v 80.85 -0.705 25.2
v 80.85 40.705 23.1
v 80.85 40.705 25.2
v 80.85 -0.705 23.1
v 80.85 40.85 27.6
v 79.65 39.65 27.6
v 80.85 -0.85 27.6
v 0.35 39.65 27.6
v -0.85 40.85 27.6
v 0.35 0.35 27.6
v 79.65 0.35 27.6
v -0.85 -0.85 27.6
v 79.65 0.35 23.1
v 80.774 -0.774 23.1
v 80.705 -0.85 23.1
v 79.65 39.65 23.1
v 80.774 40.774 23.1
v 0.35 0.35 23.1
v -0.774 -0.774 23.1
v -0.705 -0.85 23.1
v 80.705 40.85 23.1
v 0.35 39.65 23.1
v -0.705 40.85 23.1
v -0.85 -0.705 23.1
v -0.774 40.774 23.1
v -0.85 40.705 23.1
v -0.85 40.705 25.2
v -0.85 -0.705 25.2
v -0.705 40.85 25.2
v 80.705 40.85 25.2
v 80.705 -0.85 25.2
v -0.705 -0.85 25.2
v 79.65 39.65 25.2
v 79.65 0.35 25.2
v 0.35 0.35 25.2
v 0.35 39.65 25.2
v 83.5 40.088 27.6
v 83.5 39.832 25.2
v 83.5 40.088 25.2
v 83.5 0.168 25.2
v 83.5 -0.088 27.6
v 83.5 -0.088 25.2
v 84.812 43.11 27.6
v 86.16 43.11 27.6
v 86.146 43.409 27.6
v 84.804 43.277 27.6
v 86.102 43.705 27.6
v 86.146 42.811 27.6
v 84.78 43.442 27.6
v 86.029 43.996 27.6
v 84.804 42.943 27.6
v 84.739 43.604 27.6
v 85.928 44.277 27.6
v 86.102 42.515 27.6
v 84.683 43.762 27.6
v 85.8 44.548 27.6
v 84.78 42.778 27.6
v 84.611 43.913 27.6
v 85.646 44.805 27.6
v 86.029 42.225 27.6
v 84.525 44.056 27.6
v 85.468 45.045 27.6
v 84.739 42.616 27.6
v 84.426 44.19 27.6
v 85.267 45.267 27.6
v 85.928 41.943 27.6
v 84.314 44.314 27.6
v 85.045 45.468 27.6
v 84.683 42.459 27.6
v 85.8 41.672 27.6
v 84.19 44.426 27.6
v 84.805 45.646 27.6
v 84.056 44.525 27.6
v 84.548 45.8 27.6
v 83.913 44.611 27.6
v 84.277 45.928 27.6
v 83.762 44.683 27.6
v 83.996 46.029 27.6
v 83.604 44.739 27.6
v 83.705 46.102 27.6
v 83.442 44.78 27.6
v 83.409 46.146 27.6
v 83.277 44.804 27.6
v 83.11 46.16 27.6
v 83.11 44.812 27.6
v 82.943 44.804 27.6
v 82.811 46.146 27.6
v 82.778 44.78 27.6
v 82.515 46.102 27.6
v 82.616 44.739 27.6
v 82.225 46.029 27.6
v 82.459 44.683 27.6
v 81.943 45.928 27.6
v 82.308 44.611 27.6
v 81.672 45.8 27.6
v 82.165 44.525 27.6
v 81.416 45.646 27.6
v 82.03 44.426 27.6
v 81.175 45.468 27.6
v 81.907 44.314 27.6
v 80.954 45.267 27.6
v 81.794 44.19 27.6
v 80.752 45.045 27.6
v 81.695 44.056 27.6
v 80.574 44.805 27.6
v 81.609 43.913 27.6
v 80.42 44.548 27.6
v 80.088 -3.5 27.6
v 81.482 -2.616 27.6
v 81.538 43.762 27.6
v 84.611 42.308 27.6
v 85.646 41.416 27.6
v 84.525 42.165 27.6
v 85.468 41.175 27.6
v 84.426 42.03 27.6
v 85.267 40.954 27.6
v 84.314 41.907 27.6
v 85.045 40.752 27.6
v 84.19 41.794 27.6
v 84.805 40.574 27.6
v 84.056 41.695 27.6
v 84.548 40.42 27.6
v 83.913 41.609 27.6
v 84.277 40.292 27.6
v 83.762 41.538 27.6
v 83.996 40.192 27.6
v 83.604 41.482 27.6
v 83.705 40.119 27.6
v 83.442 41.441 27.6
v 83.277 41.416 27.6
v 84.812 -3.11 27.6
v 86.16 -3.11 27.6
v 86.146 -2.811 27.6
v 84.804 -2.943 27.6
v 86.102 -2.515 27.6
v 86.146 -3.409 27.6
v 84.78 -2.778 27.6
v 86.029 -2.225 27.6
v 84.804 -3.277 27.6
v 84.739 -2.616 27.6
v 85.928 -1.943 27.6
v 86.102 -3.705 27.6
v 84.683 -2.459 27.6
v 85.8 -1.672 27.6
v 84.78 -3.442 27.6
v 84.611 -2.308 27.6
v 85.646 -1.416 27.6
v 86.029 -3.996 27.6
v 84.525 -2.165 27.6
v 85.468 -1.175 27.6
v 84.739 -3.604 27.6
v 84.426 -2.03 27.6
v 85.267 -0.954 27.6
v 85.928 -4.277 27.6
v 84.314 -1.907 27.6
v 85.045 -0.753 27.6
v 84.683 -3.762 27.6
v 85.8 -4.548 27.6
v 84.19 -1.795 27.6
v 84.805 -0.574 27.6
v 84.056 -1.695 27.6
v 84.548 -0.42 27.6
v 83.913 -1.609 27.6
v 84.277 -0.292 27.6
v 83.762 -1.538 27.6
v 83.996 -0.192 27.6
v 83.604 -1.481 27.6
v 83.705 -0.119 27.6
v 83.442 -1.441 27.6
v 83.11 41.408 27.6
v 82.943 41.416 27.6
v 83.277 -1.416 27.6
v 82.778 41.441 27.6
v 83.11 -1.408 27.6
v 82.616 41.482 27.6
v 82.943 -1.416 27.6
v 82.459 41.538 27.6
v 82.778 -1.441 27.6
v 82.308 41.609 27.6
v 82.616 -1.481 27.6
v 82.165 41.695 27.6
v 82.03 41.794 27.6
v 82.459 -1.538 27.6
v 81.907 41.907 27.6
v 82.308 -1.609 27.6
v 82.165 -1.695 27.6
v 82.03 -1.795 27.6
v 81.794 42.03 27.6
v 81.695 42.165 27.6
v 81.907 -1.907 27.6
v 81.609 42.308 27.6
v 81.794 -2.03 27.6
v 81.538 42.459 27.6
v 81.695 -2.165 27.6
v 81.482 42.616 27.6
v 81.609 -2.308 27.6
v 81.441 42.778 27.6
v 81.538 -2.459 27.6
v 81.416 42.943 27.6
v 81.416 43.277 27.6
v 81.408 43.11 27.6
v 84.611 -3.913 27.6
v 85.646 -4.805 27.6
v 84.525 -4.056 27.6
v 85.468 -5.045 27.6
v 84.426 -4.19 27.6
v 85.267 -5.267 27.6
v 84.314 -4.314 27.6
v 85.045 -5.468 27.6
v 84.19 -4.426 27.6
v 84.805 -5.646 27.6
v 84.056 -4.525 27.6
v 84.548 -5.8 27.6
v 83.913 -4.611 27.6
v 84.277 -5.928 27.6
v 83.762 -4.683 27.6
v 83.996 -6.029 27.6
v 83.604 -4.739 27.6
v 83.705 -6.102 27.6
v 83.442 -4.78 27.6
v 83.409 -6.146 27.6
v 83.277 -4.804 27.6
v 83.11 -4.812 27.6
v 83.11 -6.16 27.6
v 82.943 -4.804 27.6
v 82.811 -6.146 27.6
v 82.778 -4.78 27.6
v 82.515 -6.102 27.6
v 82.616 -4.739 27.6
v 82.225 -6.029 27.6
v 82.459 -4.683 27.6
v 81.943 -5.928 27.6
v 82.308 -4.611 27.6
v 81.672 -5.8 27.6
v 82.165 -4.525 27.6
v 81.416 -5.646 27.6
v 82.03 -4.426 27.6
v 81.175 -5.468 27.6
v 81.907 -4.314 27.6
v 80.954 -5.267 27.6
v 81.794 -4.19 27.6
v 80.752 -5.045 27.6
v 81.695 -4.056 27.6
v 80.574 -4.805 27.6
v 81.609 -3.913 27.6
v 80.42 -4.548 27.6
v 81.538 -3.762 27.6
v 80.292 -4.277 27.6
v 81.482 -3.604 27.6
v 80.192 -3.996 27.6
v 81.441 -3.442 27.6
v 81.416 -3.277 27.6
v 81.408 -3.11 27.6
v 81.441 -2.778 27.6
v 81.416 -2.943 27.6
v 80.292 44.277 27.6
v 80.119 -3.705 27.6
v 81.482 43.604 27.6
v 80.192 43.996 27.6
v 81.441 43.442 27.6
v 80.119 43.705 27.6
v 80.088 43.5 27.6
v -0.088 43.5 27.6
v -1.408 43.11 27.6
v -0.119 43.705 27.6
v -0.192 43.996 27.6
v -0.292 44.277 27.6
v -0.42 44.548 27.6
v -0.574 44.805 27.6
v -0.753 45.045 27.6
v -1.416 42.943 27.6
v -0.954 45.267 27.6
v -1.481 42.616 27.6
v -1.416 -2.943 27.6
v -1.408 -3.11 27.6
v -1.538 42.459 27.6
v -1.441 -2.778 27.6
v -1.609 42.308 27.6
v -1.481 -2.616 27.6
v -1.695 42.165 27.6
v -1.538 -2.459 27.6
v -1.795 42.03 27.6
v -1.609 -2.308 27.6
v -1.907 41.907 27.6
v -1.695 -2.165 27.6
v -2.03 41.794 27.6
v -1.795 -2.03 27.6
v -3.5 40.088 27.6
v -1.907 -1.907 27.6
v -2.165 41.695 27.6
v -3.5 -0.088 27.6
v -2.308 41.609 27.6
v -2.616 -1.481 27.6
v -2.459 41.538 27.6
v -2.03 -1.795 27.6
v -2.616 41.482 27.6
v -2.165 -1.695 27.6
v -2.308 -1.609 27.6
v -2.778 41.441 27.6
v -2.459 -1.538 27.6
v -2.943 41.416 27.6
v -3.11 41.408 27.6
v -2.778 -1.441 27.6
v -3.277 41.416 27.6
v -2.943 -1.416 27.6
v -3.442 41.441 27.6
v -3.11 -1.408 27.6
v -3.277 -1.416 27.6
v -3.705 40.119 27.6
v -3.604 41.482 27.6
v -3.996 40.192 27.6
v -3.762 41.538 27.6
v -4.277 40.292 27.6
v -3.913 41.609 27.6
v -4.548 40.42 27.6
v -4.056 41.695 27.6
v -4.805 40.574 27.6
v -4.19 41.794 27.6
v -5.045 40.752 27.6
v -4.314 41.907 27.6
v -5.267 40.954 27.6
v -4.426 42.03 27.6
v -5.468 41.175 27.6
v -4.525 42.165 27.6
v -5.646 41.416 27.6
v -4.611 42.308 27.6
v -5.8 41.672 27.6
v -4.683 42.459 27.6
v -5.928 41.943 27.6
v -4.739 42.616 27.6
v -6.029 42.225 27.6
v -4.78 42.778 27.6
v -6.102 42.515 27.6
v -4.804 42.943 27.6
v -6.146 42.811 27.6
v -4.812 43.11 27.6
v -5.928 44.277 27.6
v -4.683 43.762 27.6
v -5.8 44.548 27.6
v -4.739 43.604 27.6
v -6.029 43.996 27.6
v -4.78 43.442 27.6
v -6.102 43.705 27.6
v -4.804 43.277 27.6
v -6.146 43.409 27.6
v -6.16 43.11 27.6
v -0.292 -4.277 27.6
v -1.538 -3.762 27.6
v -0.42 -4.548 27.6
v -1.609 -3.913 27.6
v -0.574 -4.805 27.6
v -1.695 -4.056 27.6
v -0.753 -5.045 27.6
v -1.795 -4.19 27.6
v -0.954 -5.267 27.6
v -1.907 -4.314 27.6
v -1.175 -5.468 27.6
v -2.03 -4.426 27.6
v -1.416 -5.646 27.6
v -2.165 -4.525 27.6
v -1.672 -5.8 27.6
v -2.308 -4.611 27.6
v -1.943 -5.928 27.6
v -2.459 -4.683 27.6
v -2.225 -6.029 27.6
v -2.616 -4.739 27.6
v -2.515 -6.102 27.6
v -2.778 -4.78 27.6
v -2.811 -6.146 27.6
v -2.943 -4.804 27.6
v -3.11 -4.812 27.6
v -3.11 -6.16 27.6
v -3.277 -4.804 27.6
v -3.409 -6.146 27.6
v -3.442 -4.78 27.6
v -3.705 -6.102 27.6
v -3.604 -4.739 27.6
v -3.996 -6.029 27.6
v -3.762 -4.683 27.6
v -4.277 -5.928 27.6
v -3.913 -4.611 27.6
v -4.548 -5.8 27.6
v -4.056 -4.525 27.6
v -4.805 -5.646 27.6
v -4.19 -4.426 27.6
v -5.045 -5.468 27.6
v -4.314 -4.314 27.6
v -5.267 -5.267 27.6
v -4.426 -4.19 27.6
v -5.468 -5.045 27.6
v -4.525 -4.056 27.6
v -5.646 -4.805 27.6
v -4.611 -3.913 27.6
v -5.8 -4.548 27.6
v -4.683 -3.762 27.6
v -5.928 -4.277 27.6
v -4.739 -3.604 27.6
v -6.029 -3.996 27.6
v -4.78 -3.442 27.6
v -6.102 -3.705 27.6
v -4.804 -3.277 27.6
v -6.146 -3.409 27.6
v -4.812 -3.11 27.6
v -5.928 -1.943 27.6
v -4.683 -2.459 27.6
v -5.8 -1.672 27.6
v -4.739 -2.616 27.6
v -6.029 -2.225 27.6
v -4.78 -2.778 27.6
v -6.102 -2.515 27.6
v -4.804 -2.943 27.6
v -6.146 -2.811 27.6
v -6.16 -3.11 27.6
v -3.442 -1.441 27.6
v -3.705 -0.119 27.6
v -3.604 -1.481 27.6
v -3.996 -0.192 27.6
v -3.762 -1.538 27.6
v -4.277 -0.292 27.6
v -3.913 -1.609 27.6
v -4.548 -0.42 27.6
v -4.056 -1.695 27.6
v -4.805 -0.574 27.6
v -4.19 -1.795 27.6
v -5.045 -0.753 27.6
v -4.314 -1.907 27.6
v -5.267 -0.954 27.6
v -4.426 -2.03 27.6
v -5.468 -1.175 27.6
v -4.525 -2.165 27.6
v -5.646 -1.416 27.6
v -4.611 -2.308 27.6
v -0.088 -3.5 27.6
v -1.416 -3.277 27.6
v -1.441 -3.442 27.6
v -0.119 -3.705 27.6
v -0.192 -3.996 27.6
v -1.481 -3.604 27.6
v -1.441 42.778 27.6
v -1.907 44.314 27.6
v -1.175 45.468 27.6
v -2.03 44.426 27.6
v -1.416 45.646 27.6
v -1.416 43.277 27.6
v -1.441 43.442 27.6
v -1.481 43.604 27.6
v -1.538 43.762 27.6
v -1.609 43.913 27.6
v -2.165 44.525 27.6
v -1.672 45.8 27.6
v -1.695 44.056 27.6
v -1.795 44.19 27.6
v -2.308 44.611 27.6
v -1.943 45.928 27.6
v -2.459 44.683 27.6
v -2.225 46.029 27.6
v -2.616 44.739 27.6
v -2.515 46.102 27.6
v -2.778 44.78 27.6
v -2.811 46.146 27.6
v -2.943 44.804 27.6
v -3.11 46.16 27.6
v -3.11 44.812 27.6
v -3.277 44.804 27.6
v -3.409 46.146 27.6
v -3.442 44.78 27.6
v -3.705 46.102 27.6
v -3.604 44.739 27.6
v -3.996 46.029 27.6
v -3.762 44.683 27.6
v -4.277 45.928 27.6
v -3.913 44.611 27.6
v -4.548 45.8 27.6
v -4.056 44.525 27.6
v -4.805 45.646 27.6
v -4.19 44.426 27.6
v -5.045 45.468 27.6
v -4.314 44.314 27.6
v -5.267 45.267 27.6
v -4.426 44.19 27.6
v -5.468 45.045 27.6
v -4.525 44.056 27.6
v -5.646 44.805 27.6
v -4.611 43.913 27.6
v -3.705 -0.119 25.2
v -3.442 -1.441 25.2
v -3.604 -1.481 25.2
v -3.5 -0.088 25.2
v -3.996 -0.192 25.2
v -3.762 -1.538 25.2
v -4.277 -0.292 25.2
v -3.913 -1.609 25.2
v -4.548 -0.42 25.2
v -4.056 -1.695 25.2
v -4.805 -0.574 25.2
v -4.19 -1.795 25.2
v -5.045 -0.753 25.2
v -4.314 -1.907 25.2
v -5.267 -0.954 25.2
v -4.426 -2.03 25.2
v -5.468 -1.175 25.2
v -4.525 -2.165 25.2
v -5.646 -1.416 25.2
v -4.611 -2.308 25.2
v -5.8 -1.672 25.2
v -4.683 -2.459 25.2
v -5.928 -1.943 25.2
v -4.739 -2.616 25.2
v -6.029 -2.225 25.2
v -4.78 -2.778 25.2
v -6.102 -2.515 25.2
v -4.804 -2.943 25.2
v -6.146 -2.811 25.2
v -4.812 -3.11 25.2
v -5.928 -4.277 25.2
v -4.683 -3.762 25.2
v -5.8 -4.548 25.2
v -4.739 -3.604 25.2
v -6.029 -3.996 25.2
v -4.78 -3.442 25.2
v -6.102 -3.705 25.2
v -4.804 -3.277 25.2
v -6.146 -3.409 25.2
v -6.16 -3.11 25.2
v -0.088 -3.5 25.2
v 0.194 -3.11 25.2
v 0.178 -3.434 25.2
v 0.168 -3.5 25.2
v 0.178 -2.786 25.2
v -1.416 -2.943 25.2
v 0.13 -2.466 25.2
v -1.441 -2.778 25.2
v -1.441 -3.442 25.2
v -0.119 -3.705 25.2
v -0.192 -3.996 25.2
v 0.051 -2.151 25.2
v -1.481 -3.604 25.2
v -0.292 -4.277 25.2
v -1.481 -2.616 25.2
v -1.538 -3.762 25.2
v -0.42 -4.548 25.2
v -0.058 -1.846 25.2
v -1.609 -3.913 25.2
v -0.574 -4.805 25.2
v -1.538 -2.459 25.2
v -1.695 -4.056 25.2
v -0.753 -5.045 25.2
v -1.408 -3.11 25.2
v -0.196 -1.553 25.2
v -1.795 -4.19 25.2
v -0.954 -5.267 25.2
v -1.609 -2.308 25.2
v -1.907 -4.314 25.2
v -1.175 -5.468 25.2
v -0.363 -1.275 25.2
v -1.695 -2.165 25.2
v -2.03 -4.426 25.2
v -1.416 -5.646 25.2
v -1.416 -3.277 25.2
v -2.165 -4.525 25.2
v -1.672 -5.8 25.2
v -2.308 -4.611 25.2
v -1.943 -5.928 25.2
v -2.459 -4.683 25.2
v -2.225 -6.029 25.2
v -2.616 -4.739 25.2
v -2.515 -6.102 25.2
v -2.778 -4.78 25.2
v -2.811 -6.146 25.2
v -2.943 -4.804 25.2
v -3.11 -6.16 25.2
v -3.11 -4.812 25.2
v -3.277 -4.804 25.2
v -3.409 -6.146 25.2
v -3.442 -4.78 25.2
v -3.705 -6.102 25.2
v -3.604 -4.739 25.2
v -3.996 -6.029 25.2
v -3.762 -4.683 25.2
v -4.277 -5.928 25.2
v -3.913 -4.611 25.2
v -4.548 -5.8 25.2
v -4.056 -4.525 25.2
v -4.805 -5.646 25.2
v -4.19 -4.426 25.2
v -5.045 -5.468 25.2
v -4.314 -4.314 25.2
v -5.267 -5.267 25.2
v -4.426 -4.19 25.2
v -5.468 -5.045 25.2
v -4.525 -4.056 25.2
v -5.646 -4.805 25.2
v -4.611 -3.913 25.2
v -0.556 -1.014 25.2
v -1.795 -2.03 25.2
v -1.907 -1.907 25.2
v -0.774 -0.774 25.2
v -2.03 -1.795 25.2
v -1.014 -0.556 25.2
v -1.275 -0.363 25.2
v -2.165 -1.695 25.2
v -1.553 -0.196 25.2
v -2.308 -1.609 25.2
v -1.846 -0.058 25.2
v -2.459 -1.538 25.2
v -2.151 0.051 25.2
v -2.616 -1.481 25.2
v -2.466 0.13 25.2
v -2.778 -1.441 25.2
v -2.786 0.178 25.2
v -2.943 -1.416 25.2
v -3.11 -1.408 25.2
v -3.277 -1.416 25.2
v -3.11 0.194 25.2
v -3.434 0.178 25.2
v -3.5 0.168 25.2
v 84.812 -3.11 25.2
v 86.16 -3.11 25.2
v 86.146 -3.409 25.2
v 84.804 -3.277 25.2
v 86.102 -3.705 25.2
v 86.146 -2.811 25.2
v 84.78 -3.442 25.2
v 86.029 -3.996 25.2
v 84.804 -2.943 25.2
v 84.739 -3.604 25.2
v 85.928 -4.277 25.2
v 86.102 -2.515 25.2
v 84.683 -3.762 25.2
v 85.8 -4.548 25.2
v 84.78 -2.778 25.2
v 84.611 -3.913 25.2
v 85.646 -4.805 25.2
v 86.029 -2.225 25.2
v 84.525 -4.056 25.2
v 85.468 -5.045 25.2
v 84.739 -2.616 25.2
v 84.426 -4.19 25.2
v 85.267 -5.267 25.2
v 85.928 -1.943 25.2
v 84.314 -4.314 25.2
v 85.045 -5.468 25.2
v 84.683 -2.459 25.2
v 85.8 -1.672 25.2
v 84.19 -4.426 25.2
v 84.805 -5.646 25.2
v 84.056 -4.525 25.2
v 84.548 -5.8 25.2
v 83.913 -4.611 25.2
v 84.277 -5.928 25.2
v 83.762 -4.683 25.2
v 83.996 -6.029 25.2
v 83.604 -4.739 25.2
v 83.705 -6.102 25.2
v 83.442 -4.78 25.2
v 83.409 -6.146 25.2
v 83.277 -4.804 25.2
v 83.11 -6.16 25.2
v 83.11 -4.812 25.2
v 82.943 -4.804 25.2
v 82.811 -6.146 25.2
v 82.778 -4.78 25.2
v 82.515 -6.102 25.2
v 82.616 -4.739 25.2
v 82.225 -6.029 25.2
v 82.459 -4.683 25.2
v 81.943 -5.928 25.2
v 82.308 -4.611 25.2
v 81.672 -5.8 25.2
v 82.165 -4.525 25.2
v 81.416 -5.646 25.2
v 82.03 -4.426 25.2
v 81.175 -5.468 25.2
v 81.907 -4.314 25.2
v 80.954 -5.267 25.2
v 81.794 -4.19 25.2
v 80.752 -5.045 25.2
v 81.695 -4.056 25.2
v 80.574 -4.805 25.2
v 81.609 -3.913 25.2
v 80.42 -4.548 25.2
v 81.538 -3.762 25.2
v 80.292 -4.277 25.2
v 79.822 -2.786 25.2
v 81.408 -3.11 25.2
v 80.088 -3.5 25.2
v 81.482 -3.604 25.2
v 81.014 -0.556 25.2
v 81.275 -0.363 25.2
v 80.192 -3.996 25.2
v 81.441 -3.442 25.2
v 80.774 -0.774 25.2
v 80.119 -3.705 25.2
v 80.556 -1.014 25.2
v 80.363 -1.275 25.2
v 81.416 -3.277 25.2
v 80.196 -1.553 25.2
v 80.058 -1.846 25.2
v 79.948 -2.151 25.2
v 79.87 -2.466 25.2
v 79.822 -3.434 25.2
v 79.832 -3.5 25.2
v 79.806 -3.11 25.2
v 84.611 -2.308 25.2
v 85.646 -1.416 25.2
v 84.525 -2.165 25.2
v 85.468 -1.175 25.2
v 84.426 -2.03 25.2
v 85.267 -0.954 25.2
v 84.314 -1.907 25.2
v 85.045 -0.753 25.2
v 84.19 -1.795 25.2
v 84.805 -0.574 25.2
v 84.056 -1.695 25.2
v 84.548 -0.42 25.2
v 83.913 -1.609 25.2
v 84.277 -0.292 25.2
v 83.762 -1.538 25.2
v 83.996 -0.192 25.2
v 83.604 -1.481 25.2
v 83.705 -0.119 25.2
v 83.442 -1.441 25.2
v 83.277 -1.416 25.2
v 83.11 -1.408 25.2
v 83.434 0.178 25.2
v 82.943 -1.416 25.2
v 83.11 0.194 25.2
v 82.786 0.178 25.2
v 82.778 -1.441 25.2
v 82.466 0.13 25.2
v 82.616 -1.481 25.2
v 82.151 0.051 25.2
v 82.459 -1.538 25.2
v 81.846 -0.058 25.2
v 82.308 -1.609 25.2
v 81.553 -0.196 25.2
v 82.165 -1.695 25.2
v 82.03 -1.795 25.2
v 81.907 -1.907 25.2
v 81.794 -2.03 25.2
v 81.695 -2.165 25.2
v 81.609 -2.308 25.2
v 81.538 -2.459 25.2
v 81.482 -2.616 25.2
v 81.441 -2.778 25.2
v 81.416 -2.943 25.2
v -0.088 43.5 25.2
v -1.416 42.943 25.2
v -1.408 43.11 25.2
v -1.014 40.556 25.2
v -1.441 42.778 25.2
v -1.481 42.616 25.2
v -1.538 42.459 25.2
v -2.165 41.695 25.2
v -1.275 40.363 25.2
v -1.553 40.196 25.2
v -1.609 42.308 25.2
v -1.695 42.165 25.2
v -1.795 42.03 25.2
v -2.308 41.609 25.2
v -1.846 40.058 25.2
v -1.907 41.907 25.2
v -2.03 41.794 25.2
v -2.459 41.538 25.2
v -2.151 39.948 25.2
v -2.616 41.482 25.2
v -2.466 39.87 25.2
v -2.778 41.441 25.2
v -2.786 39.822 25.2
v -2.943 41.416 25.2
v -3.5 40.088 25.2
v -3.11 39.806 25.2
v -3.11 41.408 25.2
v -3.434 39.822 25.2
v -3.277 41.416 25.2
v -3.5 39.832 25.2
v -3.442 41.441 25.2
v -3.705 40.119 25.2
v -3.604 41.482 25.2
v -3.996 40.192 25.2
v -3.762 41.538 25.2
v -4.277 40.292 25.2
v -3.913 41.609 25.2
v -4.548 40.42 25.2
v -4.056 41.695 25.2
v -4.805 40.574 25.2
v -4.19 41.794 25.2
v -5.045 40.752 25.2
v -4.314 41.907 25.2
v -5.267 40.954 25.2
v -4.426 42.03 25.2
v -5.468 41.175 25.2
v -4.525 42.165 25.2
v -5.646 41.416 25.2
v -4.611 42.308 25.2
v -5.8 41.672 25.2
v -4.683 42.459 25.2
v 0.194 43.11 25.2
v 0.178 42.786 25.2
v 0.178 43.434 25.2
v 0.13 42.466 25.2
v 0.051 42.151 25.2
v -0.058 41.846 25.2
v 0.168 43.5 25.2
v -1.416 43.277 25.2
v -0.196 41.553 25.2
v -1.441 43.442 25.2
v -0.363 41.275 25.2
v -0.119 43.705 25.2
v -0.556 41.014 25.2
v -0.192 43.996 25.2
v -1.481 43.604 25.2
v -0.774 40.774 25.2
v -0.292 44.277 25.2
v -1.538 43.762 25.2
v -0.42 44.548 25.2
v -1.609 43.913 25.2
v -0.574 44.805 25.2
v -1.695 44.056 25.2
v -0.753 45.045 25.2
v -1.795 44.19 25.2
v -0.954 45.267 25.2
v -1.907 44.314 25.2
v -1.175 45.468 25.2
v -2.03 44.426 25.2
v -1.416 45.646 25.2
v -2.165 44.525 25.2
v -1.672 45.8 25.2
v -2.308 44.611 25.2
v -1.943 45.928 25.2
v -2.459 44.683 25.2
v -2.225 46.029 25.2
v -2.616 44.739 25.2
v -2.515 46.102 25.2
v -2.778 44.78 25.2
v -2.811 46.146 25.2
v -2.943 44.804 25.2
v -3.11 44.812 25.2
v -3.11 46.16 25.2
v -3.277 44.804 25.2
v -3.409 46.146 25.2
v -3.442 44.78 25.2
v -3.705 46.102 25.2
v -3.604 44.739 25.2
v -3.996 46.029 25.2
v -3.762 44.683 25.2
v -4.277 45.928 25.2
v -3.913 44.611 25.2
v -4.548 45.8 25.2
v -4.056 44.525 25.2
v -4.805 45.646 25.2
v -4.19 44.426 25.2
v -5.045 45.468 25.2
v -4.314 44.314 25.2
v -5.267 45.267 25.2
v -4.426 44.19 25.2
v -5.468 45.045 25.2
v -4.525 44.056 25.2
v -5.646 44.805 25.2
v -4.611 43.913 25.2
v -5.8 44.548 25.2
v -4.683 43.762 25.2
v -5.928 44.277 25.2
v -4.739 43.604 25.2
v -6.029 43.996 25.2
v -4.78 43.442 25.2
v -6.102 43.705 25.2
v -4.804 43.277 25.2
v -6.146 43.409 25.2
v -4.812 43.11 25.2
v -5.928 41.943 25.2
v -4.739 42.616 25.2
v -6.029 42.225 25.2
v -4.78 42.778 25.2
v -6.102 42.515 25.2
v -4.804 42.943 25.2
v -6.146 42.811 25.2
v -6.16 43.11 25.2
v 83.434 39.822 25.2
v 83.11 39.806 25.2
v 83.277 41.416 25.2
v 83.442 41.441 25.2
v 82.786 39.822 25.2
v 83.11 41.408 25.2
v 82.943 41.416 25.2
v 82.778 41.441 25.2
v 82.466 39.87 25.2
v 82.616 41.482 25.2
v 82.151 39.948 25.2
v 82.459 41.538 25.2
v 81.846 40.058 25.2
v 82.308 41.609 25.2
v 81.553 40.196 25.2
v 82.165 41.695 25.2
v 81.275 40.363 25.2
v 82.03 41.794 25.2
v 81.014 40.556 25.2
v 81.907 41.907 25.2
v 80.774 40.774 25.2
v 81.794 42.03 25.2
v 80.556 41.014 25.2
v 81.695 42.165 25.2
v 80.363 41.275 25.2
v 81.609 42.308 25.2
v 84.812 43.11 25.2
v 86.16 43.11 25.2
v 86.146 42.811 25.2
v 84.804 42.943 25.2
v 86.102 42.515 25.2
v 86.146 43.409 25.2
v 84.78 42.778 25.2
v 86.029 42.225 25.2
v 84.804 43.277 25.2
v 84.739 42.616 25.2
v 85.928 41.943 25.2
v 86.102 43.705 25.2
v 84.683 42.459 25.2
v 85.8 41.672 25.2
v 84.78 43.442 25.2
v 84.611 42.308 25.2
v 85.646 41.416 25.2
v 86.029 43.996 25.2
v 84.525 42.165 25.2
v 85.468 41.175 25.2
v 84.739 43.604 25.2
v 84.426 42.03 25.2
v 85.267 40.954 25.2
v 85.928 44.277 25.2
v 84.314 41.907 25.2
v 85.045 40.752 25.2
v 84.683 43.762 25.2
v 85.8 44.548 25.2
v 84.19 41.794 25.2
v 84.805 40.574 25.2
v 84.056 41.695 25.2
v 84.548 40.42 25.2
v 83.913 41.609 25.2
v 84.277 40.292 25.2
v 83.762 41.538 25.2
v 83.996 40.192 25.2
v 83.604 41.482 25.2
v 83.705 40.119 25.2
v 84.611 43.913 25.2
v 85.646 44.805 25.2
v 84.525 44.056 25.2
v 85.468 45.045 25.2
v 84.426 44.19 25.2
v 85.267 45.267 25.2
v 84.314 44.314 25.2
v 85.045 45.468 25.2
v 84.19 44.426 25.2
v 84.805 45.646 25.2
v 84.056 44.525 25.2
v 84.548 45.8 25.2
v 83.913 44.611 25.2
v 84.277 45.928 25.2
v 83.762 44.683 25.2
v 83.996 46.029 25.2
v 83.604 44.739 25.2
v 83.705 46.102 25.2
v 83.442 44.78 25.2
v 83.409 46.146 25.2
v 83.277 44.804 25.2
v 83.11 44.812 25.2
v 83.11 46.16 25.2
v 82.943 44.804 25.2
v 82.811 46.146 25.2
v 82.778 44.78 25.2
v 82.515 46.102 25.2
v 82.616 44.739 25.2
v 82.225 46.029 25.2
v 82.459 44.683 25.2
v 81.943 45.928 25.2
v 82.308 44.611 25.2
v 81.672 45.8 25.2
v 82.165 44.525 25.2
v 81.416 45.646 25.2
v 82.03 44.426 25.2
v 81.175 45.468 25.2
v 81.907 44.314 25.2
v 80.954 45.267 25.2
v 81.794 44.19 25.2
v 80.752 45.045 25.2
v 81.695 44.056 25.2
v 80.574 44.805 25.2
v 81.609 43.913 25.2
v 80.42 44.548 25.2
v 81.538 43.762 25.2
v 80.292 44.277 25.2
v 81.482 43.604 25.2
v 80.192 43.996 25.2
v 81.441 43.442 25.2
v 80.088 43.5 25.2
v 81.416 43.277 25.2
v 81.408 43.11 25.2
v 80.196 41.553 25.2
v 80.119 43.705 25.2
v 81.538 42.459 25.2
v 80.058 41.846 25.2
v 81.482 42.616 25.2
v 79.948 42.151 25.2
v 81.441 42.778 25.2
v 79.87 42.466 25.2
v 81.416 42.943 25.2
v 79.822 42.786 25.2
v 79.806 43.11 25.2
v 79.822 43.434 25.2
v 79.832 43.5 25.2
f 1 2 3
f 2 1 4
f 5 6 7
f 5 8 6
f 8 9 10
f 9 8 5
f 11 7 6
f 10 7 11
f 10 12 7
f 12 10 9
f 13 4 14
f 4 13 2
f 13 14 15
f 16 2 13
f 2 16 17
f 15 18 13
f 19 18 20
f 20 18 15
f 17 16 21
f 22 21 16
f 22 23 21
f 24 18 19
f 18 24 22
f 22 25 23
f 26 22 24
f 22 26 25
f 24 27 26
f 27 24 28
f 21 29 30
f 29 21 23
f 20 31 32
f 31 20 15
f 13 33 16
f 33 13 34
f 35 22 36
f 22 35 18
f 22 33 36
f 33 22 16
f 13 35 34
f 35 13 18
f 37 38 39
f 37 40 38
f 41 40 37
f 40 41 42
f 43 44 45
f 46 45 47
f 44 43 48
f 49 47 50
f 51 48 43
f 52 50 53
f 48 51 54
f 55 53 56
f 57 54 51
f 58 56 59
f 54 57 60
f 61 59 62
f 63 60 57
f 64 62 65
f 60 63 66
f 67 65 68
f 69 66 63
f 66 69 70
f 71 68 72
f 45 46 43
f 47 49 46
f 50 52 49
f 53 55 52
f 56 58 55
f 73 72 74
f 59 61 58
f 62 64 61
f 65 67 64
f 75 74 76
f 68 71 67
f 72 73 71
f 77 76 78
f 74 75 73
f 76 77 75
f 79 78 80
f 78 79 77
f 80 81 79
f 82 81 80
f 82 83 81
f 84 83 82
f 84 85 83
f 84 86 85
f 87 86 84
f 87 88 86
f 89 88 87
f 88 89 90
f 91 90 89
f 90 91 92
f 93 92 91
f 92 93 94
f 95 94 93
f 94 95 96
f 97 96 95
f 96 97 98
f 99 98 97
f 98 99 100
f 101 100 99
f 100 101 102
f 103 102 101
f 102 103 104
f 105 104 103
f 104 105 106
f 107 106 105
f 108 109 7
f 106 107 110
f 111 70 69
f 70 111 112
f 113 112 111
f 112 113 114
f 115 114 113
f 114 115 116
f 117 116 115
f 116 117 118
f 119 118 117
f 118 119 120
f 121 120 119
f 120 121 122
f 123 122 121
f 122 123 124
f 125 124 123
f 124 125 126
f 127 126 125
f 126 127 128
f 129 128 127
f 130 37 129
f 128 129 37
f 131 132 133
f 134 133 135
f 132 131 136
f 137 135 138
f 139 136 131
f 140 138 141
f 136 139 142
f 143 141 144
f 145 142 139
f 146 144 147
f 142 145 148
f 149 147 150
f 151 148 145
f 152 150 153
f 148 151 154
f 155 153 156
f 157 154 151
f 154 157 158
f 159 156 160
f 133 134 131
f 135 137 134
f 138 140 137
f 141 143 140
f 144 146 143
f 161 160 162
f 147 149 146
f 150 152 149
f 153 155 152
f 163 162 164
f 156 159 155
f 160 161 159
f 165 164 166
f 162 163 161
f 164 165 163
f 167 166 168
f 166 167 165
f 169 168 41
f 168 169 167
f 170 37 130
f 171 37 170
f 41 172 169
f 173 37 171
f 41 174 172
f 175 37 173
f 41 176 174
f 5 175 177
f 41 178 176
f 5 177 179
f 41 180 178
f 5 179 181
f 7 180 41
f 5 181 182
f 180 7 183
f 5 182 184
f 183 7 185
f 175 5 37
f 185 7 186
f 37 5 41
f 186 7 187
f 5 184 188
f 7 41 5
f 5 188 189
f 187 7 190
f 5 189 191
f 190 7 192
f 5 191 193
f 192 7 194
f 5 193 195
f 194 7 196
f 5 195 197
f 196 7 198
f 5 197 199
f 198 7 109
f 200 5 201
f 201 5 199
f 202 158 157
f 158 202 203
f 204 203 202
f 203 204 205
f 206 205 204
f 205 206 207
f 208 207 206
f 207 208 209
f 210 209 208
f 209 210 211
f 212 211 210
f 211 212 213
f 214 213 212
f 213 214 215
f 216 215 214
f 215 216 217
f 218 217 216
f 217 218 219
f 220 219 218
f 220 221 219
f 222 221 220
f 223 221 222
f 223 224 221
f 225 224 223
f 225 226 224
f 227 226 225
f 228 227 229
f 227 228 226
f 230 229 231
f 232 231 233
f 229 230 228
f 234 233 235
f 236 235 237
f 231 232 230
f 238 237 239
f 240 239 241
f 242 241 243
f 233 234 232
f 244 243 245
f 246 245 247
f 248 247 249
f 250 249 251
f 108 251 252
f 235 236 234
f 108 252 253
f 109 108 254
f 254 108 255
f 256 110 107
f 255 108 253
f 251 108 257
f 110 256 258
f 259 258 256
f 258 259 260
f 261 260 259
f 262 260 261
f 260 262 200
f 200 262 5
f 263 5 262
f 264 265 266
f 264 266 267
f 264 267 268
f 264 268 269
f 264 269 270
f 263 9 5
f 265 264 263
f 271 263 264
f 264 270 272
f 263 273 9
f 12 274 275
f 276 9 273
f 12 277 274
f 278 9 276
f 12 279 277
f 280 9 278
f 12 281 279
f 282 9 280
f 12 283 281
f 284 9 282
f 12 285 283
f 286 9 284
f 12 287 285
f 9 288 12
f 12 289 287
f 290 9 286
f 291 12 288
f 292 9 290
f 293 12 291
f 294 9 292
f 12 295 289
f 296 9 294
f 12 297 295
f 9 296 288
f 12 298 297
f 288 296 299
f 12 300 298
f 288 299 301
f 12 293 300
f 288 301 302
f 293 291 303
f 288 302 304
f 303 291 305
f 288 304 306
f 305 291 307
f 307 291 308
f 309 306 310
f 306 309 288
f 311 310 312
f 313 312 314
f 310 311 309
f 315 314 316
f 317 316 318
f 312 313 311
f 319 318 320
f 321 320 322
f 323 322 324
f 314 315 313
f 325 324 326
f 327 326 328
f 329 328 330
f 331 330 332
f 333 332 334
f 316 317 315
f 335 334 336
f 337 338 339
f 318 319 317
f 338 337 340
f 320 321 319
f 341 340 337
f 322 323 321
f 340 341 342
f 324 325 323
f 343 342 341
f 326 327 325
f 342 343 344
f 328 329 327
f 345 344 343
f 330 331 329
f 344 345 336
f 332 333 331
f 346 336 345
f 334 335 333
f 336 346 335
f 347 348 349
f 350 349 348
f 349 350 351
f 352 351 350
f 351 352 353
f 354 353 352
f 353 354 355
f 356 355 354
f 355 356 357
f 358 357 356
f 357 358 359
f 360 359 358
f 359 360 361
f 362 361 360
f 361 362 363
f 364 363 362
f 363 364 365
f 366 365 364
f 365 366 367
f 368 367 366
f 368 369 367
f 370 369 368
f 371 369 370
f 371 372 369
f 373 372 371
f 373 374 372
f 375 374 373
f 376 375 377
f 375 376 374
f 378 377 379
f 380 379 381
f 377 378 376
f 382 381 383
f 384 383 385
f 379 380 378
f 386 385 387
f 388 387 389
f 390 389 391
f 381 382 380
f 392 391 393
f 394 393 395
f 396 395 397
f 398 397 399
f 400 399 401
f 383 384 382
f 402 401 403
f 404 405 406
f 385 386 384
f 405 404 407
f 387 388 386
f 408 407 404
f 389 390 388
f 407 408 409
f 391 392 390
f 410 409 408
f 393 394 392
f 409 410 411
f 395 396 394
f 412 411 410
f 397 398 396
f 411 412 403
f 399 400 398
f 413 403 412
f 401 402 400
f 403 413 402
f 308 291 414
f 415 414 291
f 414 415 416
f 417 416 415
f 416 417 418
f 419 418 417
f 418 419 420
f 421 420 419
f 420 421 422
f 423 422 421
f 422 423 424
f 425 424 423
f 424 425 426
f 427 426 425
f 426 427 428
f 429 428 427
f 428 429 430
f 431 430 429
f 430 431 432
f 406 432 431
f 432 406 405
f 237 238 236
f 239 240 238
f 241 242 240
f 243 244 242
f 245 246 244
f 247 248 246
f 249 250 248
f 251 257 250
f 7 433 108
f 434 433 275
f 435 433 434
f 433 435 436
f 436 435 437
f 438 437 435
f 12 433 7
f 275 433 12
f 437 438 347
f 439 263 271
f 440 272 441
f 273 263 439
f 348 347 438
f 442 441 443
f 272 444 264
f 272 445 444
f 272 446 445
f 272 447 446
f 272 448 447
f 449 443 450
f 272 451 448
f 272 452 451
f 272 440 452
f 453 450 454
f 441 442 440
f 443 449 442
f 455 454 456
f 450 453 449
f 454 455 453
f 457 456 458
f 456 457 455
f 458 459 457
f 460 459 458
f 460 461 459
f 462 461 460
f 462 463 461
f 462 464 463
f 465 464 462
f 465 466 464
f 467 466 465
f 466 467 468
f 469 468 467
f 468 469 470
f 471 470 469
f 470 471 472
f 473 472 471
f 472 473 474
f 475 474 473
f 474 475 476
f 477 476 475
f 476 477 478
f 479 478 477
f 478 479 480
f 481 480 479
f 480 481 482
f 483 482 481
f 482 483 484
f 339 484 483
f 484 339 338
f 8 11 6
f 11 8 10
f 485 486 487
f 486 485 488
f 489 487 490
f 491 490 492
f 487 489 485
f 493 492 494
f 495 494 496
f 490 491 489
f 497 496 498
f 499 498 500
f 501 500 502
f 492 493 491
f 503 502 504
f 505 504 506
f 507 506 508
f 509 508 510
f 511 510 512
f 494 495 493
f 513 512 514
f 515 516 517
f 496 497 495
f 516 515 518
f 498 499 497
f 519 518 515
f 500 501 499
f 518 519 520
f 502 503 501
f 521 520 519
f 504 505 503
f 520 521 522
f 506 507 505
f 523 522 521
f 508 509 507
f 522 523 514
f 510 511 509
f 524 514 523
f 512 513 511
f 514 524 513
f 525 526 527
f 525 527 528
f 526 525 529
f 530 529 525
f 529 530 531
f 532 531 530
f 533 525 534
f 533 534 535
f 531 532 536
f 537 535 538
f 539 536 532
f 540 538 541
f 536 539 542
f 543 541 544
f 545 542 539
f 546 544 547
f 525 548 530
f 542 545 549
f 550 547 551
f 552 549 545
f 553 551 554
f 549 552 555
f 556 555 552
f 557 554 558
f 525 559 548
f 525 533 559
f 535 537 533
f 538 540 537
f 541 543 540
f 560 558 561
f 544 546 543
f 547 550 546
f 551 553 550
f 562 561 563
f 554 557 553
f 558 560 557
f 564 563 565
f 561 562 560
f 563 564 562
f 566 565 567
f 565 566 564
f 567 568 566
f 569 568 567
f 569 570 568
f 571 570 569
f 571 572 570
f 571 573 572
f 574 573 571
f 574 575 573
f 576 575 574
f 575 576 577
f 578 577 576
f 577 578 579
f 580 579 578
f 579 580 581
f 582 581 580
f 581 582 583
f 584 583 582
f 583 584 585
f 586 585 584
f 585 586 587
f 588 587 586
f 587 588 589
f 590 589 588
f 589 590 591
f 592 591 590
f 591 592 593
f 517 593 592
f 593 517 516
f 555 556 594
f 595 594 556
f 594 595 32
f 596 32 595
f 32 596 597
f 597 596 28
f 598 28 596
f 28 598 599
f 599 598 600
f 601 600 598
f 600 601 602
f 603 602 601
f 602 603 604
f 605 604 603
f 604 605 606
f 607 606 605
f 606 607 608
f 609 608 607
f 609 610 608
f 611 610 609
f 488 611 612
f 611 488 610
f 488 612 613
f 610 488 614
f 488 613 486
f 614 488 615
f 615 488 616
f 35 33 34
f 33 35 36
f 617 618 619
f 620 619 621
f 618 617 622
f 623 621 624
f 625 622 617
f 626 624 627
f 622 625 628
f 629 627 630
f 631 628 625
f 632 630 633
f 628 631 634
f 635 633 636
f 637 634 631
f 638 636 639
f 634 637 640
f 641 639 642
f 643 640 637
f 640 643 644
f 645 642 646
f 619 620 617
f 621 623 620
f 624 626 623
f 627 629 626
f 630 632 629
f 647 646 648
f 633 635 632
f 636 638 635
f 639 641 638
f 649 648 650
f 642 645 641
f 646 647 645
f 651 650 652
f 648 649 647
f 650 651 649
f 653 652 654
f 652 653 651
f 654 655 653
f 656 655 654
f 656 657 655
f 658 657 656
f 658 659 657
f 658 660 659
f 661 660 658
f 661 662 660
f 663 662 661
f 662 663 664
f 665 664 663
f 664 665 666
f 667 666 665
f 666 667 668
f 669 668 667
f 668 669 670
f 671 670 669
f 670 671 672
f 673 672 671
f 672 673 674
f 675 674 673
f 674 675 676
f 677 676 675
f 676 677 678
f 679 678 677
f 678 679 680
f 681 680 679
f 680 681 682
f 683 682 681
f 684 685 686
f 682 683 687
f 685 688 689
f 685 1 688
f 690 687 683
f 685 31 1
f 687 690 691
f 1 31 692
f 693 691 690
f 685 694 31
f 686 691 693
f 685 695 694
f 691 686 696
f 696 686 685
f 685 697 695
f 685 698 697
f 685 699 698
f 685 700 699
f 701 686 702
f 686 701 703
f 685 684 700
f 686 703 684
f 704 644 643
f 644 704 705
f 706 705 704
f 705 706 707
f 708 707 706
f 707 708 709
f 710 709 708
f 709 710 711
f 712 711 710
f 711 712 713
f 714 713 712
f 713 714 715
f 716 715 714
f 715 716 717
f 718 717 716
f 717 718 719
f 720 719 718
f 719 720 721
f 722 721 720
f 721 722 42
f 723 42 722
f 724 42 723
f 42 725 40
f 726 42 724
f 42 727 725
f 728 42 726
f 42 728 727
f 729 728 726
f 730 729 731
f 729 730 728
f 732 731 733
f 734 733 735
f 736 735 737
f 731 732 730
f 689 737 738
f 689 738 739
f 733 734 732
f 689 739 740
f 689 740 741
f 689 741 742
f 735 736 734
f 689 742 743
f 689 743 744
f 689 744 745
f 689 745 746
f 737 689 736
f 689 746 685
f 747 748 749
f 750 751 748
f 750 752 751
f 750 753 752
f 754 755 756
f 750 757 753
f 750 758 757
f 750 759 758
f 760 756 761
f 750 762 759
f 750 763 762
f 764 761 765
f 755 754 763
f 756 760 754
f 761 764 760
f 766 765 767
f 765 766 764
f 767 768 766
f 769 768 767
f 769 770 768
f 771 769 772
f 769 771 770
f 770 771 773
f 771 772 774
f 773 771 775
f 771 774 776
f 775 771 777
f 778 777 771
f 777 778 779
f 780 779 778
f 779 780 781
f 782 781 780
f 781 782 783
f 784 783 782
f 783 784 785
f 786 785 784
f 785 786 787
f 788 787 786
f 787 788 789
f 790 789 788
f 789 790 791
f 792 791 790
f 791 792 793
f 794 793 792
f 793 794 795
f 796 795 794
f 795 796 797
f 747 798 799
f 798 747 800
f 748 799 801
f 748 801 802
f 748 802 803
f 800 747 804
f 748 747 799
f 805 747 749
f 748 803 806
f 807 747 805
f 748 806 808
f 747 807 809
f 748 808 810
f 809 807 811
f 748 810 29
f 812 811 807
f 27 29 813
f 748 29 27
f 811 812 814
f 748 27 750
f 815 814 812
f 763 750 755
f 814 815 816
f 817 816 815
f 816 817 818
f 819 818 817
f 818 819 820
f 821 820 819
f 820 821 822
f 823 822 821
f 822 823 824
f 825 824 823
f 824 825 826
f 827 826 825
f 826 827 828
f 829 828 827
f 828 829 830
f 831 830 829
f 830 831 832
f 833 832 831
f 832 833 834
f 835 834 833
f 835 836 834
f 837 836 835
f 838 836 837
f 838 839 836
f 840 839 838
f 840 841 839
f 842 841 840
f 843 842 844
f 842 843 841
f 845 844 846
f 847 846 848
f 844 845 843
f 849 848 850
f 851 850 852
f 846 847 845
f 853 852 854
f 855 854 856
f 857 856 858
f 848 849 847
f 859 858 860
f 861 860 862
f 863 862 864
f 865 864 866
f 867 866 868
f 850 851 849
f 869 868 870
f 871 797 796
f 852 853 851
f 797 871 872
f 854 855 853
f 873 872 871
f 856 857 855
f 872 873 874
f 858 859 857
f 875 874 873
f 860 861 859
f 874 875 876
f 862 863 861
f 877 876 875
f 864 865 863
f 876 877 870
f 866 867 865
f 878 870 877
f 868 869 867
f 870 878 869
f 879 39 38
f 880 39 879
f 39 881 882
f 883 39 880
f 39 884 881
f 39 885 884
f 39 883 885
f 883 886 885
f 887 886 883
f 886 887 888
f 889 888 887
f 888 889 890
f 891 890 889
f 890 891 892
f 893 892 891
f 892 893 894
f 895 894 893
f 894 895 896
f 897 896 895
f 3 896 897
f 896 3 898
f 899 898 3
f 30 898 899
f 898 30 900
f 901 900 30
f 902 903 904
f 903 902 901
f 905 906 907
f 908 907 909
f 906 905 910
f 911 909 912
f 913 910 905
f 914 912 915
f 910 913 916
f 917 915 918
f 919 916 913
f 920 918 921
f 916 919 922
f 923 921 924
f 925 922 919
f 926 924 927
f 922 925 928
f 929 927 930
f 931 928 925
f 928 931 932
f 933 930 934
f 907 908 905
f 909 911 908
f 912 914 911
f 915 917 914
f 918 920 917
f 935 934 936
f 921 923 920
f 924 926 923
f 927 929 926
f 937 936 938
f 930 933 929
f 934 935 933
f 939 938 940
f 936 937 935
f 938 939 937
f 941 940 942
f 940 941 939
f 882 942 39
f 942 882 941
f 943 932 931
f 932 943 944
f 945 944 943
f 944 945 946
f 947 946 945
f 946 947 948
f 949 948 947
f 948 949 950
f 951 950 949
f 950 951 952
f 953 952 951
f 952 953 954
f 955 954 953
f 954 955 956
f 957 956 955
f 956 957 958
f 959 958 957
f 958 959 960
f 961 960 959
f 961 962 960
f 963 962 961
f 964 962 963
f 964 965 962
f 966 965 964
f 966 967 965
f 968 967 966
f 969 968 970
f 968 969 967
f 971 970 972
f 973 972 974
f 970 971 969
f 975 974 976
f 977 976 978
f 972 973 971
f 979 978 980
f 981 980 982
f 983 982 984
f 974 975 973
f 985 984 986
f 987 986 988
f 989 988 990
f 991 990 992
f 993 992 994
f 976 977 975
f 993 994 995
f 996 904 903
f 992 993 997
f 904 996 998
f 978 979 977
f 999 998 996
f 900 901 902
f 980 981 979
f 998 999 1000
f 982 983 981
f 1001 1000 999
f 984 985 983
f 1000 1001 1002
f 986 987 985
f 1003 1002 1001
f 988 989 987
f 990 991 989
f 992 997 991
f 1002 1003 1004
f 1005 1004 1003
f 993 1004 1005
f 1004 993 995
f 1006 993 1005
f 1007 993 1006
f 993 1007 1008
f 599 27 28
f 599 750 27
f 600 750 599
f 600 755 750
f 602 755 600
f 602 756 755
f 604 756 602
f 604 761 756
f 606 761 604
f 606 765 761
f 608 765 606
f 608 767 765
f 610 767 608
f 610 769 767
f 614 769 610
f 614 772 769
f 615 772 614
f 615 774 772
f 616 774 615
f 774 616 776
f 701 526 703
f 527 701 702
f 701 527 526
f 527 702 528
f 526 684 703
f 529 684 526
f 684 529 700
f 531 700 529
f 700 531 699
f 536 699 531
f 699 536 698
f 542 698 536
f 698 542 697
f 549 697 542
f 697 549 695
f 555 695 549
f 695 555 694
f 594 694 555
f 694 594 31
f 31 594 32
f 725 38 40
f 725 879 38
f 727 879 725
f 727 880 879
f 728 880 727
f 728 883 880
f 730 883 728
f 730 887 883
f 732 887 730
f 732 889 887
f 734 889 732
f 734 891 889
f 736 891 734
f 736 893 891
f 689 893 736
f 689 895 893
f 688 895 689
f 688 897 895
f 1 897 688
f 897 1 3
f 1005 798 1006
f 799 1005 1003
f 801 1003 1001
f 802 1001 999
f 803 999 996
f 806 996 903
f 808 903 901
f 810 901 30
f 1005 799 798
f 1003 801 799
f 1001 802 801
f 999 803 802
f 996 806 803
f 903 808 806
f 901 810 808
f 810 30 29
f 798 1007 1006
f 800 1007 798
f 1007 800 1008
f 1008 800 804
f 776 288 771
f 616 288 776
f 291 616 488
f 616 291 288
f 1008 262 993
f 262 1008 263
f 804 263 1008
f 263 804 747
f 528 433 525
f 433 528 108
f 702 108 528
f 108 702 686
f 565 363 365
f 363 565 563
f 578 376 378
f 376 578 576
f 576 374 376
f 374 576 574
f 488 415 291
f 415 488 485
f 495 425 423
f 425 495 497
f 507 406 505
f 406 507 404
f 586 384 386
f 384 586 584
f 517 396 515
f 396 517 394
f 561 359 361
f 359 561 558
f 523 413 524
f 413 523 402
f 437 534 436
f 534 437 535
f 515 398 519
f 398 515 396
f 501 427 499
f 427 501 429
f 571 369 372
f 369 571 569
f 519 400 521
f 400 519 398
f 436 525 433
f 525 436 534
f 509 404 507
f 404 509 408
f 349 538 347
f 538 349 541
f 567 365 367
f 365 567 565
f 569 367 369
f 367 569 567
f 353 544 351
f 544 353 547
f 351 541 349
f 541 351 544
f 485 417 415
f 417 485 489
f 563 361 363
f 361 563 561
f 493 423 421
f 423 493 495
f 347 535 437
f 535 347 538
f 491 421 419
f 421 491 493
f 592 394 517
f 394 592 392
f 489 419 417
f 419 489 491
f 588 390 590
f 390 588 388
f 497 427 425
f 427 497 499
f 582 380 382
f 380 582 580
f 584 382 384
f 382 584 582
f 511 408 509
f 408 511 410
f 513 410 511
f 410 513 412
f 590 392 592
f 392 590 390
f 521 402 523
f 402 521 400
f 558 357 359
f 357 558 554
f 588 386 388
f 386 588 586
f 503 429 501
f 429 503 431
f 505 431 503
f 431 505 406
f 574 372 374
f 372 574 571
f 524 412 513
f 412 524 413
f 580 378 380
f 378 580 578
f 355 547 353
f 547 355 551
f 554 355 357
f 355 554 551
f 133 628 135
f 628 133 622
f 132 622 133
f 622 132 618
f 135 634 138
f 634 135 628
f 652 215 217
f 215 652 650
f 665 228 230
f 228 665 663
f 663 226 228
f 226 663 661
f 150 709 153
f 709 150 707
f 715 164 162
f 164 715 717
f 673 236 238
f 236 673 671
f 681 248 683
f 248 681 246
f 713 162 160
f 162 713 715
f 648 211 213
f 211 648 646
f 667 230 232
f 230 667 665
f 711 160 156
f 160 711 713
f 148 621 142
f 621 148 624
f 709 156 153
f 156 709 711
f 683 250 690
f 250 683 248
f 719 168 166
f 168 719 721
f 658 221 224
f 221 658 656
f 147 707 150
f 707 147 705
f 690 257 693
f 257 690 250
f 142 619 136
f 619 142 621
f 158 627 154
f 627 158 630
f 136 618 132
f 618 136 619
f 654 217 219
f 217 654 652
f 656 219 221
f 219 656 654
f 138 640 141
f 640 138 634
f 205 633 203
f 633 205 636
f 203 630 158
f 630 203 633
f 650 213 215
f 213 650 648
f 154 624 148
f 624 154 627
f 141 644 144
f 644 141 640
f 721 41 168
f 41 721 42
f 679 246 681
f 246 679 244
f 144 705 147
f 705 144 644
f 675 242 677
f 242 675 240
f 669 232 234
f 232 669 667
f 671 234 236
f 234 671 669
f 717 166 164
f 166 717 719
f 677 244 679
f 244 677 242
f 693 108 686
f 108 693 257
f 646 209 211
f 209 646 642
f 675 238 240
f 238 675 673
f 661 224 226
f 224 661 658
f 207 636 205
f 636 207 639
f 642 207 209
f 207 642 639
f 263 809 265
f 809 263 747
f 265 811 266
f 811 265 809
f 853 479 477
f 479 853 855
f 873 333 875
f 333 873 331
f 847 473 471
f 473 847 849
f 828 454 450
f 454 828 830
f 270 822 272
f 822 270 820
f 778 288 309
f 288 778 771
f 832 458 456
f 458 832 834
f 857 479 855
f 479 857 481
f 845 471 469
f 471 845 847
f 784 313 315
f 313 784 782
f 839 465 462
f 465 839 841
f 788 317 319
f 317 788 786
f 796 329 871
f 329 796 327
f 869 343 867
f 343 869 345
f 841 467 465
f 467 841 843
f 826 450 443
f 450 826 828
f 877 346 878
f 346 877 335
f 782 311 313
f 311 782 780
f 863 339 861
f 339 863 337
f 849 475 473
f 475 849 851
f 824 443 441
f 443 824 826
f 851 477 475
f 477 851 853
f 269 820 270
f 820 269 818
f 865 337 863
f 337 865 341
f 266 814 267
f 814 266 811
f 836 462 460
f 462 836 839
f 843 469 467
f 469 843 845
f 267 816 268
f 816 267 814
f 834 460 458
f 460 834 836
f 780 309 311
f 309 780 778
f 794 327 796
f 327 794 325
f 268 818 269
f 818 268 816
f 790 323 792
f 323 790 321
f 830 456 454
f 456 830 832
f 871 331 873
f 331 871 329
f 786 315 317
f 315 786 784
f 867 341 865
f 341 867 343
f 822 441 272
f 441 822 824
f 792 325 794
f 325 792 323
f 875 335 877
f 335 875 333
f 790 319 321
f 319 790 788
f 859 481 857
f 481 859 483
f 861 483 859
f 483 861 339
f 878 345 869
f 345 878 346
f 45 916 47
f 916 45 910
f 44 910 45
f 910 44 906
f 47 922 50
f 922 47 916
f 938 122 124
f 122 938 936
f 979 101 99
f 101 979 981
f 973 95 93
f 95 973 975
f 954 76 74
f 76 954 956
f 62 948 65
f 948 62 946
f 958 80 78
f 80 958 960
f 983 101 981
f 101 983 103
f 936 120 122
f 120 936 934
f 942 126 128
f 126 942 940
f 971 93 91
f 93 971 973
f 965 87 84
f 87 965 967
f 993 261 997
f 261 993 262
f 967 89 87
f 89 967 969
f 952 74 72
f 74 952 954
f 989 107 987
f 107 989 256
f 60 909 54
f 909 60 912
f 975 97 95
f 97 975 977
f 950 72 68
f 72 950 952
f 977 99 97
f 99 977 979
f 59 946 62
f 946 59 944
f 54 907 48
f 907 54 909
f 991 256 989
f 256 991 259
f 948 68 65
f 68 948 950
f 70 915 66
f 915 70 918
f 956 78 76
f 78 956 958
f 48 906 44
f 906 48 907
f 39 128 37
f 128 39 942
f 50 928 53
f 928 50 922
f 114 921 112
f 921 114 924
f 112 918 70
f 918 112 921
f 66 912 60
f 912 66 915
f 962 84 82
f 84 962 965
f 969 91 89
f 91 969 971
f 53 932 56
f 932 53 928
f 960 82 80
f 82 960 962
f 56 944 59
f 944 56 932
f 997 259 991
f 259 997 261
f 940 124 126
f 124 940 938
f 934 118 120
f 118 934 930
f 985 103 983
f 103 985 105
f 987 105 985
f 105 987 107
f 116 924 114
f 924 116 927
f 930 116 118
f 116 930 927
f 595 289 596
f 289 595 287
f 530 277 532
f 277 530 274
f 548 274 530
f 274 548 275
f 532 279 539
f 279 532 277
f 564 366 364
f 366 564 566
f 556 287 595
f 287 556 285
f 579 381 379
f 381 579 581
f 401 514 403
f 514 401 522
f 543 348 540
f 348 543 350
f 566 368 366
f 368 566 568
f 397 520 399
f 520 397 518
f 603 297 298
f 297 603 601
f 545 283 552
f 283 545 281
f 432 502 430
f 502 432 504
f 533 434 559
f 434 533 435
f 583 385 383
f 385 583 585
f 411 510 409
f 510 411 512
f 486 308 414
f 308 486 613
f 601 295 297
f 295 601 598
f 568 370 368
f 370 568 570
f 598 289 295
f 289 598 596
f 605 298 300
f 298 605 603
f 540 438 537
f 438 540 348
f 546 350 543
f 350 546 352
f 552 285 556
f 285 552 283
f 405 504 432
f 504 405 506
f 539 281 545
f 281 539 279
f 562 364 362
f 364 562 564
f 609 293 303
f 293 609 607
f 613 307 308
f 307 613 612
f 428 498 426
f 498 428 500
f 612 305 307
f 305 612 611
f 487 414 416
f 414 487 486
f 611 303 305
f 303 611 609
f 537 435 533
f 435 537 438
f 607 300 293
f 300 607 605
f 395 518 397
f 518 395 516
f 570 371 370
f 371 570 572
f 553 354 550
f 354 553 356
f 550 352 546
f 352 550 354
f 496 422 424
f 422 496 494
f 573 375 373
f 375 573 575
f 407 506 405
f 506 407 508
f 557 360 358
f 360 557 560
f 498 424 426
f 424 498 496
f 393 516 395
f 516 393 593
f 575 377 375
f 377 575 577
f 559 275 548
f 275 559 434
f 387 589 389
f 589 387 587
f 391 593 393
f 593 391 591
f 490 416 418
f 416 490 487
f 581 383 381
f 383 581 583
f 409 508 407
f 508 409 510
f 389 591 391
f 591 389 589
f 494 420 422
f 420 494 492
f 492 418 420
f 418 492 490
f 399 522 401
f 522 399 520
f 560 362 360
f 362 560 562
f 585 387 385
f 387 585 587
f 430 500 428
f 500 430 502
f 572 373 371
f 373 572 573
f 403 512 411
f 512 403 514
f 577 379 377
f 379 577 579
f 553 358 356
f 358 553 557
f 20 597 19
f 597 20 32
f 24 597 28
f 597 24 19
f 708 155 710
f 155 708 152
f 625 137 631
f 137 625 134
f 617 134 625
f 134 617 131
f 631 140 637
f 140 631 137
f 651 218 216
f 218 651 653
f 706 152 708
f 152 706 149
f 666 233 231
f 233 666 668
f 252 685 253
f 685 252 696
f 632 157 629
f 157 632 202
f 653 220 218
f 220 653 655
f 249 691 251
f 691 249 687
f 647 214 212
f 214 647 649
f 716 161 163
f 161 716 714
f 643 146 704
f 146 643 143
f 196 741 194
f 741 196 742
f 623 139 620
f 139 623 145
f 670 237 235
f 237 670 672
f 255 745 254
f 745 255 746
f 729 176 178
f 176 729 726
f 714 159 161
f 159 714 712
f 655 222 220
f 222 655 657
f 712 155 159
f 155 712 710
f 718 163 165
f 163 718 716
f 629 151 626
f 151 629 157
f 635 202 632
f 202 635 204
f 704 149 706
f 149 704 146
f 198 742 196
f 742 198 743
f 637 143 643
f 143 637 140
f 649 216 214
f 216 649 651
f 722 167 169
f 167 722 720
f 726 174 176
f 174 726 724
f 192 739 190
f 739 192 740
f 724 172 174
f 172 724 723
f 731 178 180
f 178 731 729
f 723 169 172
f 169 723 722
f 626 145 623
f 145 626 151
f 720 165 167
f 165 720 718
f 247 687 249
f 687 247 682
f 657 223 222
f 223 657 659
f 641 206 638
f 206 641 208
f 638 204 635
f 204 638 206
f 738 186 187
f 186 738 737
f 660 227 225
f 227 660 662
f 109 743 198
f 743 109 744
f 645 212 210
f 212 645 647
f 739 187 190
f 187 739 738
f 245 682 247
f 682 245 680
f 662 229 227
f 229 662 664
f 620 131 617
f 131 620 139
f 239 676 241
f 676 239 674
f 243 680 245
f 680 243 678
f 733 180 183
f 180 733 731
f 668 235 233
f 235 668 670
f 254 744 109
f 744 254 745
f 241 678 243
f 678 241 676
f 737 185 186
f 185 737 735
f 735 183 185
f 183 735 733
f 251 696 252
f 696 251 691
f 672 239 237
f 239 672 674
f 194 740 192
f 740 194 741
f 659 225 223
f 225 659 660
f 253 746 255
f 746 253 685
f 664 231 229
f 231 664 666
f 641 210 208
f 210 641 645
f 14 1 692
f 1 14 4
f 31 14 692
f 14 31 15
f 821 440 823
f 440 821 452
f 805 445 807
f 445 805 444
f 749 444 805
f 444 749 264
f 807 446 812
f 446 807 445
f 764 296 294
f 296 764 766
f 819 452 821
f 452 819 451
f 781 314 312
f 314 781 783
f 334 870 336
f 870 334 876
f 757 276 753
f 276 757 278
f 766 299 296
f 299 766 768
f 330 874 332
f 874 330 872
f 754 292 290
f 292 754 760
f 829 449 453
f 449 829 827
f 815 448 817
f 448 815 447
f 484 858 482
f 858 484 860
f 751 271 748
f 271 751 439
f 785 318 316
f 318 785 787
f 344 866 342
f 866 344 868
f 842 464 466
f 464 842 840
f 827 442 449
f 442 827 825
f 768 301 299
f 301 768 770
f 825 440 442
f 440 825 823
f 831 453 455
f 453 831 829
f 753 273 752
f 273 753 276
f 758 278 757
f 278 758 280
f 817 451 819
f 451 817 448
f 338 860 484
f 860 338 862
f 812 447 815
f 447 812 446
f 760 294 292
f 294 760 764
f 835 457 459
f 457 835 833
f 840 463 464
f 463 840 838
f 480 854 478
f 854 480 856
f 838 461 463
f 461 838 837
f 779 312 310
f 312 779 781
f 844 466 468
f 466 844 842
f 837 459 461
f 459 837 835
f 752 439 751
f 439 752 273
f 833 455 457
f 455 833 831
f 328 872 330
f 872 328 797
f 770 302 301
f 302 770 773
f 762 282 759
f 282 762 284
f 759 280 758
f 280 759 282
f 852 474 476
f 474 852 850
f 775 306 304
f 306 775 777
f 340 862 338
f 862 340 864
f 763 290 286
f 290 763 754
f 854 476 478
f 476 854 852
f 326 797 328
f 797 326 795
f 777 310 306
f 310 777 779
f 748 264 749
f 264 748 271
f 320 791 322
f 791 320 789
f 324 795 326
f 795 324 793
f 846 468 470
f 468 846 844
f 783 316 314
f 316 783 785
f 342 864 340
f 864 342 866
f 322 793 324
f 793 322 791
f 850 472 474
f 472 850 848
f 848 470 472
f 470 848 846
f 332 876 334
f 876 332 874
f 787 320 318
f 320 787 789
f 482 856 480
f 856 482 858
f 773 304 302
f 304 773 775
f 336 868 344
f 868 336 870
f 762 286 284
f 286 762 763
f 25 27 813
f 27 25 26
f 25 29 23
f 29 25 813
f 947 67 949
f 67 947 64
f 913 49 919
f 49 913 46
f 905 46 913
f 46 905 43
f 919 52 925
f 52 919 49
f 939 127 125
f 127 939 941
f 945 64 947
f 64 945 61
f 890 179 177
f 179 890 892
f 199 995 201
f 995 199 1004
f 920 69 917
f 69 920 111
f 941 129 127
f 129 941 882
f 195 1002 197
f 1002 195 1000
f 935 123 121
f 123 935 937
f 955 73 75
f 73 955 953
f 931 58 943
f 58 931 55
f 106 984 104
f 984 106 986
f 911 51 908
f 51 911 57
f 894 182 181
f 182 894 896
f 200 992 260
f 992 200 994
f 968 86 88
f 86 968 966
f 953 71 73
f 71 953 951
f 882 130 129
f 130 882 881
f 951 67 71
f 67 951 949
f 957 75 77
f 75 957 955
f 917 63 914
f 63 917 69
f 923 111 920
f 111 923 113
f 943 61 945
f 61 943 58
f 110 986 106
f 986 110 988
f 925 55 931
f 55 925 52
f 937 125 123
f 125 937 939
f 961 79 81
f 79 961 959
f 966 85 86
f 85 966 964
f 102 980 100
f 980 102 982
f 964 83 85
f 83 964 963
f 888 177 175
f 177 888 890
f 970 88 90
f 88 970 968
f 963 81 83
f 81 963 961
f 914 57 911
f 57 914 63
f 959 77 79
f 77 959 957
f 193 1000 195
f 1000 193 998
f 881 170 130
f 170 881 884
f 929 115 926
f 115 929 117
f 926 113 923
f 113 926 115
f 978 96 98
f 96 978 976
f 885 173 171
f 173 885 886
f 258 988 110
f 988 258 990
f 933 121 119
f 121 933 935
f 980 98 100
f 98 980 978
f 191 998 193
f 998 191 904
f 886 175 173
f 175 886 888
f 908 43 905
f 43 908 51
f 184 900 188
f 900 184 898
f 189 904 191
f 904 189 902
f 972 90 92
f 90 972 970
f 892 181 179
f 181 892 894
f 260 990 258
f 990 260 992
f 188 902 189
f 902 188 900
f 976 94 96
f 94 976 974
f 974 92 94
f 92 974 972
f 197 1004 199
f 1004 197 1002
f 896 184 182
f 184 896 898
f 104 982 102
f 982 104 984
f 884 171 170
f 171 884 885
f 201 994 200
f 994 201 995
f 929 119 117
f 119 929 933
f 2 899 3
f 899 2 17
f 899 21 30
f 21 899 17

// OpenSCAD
// body lid
difference() {
  union() {
    // body lid (lid_plate)
    multmatrix([[1, 0, 0, 40], [0, 1, 0, 20], [0, 0, 1, 25.2], [0, 0, 0, 1]]) translate([-43.5, -23.5, 0]) cube([87, 47, 2.4]);
    // add lid_lip (lip)
    multmatrix([[1, 0, 0, 40], [0, 1, 0, 20], [0, 0, 1, 23.1], [0, 0, 0, 1]]) difference() { translate([-40.85, -20.85, 0]) cube([81.7, 41.7, 4.5]); translate([0, 0, -1]) translate([-39.65, -19.65, 0]) cube([79.3, 39.3, 6.5]); }
    // add boss_1_pad (pad)
    multmatrix([[1, 0, 0, -3.110229], [0, 1, 0, -3.110229], [0, 0, 1, 25.2], [0, 0, 0, 1]]) cylinder(h=2.4, d=6.1, $fn=64);
    // add boss_2_pad (pad)
    multmatrix([[1, 0, 0, 83.110229], [0, 1, 0, -3.110229], [0, 0, 1, 25.2], [0, 0, 0, 1]]) cylinder(h=2.4, d=6.1, $fn=64);
    // add boss_3_pad (pad)
    multmatrix([[1, 0, 0, -3.110229], [0, 1, 0, 43.110229], [0, 0, 1, 25.2], [0, 0, 0, 1]]) cylinder(h=2.4, d=6.1, $fn=64);
    // add boss_4_pad (pad)
    multmatrix([[1, 0, 0, 83.110229], [0, 1, 0, 43.110229], [0, 0, 1, 25.2], [0, 0, 0, 1]]) cylinder(h=2.4, d=6.1, $fn=64);
  }
  // cut boss_1_lid_hole (screw_hole)
  multmatrix([[1, 0, 0, -3.110229], [0, 1, 0, -3.110229], [0, 0, 1, 24.2], [0, 0, 0, 1]]) cylinder(h=4.4, d=3.4041, $fn=64);
  // cut boss_1_lip_notch (lip_notch)
  multmatrix([[1, 0, 0, -3.110229], [0, 1, 0, -3.110229], [0, 0, 1, 22.1], [0, 0, 0, 1]]) cylinder(h=3.1, d=6.60796, $fn=64);
  // cut boss_2_lid_hole (screw_hole)
  multmatrix([[1, 0, 0, 83.110229], [0, 1, 0, -3.110229], [0, 0, 1, 24.2], [0, 0, 0, 1]]) cylinder(h=4.4, d=3.4041, $fn=64);
  // cut boss_2_lip_notch (lip_notch)
  multmatrix([[1, 0, 0, 83.110229], [0, 1, 0, -3.110229], [0, 0, 1, 22.1], [0, 0, 0, 1]]) cylinder(h=3.1, d=6.60796, $fn=64);
  // cut boss_3_lid_hole (screw_hole)
  multmatrix([[1, 0, 0, -3.110229], [0, 1, 0, 43.110229], [0, 0, 1, 24.2], [0, 0, 0, 1]]) cylinder(h=4.4, d=3.4041, $fn=64);
  // cut boss_3_lip_notch (lip_notch)
  multmatrix([[1, 0, 0, -3.110229], [0, 1, 0, 43.110229], [0, 0, 1, 22.1], [0, 0, 0, 1]]) cylinder(h=3.1, d=6.60796, $fn=64);
  // cut boss_4_lid_hole (screw_hole)
  multmatrix([[1, 0, 0, 83.110229], [0, 1, 0, 43.110229], [0, 0, 1, 24.2], [0, 0, 0, 1]]) cylinder(h=4.4, d=3.4041, $fn=64);
  // cut boss_4_lip_notch (lip_notch)
  multmatrix([[1, 0, 0, 83.110229], [0, 1, 0, 43.110229], [0, 0, 1, 22.1], [0, 0, 0, 1]]) cylinder(h=3.1, d=6.60796, $fn=64);
}
